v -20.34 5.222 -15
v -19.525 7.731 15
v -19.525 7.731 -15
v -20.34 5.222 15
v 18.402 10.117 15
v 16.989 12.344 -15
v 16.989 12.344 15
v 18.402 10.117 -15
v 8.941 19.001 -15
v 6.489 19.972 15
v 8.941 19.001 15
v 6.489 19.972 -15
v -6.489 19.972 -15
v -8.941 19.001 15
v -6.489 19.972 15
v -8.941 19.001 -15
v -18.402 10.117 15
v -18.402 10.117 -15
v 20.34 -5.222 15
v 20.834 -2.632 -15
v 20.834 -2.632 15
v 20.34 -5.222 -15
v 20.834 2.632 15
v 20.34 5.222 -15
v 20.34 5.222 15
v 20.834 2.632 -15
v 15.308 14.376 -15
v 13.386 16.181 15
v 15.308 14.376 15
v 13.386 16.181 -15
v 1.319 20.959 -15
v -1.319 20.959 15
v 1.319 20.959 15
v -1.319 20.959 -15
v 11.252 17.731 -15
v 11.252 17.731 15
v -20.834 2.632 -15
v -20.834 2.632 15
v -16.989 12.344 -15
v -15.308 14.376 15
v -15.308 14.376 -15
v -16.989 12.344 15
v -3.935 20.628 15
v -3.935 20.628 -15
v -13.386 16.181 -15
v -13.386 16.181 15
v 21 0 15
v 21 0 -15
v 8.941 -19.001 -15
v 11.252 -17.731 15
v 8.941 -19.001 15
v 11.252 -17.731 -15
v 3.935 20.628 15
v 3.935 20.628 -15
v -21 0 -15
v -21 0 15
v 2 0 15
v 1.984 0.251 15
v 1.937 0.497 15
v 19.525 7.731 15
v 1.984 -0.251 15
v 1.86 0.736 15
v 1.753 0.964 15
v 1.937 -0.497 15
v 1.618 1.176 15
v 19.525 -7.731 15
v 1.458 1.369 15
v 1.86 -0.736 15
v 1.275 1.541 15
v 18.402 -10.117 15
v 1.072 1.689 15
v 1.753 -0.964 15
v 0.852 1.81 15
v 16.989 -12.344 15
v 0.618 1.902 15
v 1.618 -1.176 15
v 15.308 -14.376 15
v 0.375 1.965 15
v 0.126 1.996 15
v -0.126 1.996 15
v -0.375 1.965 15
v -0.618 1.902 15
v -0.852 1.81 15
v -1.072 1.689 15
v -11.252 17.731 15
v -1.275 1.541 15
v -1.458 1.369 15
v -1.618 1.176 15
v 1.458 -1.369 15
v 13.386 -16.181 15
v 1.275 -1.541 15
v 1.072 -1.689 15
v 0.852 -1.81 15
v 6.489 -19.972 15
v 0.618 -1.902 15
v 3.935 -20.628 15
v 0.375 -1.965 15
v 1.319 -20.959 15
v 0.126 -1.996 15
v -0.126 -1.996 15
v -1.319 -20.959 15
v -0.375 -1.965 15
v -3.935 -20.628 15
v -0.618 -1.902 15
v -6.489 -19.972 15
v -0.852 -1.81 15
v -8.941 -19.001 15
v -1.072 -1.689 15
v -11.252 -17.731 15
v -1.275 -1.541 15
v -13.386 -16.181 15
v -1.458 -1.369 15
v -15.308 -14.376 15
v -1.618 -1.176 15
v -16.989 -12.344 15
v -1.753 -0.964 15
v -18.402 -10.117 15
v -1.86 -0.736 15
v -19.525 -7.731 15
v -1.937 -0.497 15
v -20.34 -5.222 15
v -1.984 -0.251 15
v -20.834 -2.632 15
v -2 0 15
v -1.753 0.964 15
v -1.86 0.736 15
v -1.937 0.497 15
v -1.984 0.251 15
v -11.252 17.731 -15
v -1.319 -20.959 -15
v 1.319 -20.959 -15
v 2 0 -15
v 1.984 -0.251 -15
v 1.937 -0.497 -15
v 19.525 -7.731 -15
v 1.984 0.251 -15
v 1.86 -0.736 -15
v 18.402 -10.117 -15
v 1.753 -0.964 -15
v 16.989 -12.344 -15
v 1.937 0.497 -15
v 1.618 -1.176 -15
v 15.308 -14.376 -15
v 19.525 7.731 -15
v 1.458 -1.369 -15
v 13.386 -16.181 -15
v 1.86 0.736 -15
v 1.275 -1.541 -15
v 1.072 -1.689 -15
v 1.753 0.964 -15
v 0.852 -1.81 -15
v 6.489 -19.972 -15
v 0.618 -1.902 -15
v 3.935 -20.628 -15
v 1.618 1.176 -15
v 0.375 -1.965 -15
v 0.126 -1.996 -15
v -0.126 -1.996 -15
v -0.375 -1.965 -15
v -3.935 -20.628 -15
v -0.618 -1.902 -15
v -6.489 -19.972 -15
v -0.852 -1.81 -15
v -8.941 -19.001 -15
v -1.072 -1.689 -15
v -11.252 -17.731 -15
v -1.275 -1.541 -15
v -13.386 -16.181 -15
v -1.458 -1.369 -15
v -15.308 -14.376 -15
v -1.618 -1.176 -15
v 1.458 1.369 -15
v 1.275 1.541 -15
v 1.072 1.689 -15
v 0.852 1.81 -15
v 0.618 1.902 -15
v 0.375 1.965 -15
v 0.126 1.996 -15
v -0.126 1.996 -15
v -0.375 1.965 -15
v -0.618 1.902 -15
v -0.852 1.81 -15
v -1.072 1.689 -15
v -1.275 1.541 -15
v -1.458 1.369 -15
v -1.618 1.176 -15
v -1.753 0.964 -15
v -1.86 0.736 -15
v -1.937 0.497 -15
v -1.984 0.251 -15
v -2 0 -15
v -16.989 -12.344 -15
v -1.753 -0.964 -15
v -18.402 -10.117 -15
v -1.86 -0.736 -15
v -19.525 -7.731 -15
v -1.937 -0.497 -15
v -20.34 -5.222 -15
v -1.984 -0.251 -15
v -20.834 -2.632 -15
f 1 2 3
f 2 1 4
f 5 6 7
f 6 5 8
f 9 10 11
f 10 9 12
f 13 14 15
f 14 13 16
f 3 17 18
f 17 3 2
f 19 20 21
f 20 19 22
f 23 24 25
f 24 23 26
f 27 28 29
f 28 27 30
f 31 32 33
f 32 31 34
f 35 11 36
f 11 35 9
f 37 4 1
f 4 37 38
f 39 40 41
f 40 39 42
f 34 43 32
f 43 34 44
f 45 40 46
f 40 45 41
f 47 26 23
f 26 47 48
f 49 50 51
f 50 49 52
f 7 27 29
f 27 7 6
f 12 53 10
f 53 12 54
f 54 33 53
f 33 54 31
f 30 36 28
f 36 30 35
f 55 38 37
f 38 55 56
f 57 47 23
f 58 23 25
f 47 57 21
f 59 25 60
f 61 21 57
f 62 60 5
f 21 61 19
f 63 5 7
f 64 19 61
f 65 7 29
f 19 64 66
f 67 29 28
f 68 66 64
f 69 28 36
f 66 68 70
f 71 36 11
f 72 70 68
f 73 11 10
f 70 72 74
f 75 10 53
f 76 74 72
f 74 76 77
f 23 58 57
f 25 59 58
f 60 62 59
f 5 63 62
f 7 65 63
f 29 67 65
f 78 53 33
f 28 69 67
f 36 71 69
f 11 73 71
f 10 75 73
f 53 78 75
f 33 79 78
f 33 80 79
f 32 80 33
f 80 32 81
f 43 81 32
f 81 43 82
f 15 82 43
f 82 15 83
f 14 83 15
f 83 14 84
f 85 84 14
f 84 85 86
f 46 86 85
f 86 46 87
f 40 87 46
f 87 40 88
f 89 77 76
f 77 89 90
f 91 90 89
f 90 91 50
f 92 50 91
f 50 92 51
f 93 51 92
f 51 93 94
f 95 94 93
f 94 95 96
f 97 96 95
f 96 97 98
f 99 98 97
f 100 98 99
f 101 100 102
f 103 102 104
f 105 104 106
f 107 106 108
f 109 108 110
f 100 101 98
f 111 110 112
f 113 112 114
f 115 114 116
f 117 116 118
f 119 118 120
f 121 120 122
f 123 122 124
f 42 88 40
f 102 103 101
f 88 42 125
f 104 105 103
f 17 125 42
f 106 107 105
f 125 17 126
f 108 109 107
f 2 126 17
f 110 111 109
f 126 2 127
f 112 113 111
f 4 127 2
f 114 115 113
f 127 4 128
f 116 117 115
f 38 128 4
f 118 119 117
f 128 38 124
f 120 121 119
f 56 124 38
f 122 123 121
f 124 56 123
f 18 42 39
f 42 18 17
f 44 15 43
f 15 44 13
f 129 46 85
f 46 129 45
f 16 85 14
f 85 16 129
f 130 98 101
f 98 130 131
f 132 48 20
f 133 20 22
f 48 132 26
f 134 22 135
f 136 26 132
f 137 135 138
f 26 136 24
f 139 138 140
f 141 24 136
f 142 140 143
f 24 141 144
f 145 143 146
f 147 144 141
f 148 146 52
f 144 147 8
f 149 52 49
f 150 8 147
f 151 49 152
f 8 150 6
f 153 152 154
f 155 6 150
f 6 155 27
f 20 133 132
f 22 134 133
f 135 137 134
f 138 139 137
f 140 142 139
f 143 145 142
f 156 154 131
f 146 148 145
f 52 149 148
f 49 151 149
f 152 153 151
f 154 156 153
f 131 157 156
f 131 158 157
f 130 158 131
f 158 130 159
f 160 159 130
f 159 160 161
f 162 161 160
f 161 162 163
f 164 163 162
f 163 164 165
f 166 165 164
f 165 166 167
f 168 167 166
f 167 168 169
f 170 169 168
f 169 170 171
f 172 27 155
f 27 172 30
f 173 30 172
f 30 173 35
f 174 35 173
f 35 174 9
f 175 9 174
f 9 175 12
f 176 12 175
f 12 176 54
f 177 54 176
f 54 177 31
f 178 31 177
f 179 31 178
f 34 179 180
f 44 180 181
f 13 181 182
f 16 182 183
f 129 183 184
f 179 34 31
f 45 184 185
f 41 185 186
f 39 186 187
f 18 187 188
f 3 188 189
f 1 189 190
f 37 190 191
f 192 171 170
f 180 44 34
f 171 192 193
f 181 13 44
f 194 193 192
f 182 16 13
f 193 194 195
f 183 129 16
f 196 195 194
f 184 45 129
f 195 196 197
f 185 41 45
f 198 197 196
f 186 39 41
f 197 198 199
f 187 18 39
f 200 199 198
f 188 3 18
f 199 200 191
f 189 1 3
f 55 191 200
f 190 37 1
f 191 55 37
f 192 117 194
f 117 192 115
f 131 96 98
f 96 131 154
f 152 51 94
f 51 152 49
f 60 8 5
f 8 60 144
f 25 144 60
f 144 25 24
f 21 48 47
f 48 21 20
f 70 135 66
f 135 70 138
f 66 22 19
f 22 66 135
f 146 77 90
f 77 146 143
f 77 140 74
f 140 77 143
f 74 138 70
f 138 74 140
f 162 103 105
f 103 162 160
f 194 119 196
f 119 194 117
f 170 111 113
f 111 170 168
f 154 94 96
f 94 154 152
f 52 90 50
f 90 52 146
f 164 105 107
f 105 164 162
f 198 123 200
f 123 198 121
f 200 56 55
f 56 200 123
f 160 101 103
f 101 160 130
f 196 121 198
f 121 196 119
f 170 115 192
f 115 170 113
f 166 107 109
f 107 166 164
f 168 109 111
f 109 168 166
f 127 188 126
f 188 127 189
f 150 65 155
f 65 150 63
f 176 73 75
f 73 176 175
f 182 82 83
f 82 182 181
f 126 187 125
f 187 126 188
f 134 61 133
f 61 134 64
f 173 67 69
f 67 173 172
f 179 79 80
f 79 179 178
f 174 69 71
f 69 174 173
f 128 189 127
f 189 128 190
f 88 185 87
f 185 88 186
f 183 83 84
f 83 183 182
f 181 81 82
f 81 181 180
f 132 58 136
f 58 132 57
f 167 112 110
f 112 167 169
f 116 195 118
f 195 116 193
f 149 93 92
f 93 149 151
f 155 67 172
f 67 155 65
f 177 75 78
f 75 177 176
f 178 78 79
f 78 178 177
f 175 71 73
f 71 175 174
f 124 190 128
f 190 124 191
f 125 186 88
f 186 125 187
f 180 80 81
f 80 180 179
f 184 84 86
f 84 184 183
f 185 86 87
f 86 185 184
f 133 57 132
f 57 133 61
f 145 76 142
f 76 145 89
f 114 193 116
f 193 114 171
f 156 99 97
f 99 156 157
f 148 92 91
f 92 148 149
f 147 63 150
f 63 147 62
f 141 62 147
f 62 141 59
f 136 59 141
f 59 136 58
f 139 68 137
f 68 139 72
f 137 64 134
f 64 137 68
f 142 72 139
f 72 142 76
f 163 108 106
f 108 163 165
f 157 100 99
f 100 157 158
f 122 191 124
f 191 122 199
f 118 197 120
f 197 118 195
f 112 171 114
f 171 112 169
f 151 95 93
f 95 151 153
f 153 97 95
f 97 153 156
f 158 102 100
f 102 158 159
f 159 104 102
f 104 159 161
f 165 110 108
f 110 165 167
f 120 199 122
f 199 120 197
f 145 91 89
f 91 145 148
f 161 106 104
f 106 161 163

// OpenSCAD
$fn = 50;


difference() {
	union() {
		translate(v = [0, 0, -15.0000000000]) {
			cylinder(h = 30, r = 21.0000000000);
		}
	}
	union() {
		translate(v = [0, 0, -100.0000000000]) {
			cylinder(h = 200, r = 2);
		}
	}
}
